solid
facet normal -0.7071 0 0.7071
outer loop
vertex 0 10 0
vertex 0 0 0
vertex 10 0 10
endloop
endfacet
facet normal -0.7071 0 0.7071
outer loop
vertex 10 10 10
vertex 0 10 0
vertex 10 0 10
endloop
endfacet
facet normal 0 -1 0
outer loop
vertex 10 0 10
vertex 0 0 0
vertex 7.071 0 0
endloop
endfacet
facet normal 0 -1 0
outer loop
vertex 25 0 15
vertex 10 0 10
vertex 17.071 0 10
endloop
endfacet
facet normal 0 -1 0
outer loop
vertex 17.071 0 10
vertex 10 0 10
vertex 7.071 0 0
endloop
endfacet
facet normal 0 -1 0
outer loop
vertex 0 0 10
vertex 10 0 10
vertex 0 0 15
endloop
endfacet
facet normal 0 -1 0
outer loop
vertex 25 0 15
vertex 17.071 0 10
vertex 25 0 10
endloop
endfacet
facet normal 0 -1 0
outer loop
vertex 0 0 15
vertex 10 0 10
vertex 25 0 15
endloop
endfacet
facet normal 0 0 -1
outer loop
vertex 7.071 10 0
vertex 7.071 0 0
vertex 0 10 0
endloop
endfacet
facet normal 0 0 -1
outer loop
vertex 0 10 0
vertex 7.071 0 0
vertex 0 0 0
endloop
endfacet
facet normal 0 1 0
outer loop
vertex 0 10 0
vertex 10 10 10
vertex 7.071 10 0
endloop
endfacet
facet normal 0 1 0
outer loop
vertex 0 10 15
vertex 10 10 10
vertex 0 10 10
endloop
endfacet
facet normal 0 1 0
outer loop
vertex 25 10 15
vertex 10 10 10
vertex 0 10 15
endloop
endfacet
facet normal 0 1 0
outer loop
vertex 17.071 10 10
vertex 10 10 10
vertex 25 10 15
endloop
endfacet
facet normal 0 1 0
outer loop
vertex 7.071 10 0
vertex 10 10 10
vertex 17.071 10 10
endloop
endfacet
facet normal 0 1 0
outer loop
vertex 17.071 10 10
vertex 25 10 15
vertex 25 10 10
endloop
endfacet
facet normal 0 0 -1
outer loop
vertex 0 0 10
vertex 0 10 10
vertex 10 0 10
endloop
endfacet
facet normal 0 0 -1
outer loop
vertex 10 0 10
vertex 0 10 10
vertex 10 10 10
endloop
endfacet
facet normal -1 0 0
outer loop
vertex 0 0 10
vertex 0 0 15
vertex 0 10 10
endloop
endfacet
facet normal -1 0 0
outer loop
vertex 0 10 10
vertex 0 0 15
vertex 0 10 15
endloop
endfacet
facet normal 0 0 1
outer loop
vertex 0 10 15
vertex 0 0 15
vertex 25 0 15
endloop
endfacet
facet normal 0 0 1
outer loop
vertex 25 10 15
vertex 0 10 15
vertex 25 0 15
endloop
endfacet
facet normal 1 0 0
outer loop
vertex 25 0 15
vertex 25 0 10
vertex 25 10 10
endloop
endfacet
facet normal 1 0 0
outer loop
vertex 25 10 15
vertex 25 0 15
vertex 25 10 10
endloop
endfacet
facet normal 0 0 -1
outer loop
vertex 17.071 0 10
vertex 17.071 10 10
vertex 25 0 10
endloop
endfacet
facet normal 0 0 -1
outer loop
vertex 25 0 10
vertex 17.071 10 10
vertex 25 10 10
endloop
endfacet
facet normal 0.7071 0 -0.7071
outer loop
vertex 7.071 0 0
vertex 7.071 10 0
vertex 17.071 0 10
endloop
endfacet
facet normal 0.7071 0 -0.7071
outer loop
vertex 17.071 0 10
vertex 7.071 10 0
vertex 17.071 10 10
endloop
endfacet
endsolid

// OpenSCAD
union() {
difference() {
  rotate([0, 45, 0])
  cube(size = [5, 10, 20], center=false);

  translate([0, 0, -100])
  cube(size = [100, 100, 100], center=false);
}

translate([0, 0, 10])
cube(size =[25, 10, 5], center=false);
}
